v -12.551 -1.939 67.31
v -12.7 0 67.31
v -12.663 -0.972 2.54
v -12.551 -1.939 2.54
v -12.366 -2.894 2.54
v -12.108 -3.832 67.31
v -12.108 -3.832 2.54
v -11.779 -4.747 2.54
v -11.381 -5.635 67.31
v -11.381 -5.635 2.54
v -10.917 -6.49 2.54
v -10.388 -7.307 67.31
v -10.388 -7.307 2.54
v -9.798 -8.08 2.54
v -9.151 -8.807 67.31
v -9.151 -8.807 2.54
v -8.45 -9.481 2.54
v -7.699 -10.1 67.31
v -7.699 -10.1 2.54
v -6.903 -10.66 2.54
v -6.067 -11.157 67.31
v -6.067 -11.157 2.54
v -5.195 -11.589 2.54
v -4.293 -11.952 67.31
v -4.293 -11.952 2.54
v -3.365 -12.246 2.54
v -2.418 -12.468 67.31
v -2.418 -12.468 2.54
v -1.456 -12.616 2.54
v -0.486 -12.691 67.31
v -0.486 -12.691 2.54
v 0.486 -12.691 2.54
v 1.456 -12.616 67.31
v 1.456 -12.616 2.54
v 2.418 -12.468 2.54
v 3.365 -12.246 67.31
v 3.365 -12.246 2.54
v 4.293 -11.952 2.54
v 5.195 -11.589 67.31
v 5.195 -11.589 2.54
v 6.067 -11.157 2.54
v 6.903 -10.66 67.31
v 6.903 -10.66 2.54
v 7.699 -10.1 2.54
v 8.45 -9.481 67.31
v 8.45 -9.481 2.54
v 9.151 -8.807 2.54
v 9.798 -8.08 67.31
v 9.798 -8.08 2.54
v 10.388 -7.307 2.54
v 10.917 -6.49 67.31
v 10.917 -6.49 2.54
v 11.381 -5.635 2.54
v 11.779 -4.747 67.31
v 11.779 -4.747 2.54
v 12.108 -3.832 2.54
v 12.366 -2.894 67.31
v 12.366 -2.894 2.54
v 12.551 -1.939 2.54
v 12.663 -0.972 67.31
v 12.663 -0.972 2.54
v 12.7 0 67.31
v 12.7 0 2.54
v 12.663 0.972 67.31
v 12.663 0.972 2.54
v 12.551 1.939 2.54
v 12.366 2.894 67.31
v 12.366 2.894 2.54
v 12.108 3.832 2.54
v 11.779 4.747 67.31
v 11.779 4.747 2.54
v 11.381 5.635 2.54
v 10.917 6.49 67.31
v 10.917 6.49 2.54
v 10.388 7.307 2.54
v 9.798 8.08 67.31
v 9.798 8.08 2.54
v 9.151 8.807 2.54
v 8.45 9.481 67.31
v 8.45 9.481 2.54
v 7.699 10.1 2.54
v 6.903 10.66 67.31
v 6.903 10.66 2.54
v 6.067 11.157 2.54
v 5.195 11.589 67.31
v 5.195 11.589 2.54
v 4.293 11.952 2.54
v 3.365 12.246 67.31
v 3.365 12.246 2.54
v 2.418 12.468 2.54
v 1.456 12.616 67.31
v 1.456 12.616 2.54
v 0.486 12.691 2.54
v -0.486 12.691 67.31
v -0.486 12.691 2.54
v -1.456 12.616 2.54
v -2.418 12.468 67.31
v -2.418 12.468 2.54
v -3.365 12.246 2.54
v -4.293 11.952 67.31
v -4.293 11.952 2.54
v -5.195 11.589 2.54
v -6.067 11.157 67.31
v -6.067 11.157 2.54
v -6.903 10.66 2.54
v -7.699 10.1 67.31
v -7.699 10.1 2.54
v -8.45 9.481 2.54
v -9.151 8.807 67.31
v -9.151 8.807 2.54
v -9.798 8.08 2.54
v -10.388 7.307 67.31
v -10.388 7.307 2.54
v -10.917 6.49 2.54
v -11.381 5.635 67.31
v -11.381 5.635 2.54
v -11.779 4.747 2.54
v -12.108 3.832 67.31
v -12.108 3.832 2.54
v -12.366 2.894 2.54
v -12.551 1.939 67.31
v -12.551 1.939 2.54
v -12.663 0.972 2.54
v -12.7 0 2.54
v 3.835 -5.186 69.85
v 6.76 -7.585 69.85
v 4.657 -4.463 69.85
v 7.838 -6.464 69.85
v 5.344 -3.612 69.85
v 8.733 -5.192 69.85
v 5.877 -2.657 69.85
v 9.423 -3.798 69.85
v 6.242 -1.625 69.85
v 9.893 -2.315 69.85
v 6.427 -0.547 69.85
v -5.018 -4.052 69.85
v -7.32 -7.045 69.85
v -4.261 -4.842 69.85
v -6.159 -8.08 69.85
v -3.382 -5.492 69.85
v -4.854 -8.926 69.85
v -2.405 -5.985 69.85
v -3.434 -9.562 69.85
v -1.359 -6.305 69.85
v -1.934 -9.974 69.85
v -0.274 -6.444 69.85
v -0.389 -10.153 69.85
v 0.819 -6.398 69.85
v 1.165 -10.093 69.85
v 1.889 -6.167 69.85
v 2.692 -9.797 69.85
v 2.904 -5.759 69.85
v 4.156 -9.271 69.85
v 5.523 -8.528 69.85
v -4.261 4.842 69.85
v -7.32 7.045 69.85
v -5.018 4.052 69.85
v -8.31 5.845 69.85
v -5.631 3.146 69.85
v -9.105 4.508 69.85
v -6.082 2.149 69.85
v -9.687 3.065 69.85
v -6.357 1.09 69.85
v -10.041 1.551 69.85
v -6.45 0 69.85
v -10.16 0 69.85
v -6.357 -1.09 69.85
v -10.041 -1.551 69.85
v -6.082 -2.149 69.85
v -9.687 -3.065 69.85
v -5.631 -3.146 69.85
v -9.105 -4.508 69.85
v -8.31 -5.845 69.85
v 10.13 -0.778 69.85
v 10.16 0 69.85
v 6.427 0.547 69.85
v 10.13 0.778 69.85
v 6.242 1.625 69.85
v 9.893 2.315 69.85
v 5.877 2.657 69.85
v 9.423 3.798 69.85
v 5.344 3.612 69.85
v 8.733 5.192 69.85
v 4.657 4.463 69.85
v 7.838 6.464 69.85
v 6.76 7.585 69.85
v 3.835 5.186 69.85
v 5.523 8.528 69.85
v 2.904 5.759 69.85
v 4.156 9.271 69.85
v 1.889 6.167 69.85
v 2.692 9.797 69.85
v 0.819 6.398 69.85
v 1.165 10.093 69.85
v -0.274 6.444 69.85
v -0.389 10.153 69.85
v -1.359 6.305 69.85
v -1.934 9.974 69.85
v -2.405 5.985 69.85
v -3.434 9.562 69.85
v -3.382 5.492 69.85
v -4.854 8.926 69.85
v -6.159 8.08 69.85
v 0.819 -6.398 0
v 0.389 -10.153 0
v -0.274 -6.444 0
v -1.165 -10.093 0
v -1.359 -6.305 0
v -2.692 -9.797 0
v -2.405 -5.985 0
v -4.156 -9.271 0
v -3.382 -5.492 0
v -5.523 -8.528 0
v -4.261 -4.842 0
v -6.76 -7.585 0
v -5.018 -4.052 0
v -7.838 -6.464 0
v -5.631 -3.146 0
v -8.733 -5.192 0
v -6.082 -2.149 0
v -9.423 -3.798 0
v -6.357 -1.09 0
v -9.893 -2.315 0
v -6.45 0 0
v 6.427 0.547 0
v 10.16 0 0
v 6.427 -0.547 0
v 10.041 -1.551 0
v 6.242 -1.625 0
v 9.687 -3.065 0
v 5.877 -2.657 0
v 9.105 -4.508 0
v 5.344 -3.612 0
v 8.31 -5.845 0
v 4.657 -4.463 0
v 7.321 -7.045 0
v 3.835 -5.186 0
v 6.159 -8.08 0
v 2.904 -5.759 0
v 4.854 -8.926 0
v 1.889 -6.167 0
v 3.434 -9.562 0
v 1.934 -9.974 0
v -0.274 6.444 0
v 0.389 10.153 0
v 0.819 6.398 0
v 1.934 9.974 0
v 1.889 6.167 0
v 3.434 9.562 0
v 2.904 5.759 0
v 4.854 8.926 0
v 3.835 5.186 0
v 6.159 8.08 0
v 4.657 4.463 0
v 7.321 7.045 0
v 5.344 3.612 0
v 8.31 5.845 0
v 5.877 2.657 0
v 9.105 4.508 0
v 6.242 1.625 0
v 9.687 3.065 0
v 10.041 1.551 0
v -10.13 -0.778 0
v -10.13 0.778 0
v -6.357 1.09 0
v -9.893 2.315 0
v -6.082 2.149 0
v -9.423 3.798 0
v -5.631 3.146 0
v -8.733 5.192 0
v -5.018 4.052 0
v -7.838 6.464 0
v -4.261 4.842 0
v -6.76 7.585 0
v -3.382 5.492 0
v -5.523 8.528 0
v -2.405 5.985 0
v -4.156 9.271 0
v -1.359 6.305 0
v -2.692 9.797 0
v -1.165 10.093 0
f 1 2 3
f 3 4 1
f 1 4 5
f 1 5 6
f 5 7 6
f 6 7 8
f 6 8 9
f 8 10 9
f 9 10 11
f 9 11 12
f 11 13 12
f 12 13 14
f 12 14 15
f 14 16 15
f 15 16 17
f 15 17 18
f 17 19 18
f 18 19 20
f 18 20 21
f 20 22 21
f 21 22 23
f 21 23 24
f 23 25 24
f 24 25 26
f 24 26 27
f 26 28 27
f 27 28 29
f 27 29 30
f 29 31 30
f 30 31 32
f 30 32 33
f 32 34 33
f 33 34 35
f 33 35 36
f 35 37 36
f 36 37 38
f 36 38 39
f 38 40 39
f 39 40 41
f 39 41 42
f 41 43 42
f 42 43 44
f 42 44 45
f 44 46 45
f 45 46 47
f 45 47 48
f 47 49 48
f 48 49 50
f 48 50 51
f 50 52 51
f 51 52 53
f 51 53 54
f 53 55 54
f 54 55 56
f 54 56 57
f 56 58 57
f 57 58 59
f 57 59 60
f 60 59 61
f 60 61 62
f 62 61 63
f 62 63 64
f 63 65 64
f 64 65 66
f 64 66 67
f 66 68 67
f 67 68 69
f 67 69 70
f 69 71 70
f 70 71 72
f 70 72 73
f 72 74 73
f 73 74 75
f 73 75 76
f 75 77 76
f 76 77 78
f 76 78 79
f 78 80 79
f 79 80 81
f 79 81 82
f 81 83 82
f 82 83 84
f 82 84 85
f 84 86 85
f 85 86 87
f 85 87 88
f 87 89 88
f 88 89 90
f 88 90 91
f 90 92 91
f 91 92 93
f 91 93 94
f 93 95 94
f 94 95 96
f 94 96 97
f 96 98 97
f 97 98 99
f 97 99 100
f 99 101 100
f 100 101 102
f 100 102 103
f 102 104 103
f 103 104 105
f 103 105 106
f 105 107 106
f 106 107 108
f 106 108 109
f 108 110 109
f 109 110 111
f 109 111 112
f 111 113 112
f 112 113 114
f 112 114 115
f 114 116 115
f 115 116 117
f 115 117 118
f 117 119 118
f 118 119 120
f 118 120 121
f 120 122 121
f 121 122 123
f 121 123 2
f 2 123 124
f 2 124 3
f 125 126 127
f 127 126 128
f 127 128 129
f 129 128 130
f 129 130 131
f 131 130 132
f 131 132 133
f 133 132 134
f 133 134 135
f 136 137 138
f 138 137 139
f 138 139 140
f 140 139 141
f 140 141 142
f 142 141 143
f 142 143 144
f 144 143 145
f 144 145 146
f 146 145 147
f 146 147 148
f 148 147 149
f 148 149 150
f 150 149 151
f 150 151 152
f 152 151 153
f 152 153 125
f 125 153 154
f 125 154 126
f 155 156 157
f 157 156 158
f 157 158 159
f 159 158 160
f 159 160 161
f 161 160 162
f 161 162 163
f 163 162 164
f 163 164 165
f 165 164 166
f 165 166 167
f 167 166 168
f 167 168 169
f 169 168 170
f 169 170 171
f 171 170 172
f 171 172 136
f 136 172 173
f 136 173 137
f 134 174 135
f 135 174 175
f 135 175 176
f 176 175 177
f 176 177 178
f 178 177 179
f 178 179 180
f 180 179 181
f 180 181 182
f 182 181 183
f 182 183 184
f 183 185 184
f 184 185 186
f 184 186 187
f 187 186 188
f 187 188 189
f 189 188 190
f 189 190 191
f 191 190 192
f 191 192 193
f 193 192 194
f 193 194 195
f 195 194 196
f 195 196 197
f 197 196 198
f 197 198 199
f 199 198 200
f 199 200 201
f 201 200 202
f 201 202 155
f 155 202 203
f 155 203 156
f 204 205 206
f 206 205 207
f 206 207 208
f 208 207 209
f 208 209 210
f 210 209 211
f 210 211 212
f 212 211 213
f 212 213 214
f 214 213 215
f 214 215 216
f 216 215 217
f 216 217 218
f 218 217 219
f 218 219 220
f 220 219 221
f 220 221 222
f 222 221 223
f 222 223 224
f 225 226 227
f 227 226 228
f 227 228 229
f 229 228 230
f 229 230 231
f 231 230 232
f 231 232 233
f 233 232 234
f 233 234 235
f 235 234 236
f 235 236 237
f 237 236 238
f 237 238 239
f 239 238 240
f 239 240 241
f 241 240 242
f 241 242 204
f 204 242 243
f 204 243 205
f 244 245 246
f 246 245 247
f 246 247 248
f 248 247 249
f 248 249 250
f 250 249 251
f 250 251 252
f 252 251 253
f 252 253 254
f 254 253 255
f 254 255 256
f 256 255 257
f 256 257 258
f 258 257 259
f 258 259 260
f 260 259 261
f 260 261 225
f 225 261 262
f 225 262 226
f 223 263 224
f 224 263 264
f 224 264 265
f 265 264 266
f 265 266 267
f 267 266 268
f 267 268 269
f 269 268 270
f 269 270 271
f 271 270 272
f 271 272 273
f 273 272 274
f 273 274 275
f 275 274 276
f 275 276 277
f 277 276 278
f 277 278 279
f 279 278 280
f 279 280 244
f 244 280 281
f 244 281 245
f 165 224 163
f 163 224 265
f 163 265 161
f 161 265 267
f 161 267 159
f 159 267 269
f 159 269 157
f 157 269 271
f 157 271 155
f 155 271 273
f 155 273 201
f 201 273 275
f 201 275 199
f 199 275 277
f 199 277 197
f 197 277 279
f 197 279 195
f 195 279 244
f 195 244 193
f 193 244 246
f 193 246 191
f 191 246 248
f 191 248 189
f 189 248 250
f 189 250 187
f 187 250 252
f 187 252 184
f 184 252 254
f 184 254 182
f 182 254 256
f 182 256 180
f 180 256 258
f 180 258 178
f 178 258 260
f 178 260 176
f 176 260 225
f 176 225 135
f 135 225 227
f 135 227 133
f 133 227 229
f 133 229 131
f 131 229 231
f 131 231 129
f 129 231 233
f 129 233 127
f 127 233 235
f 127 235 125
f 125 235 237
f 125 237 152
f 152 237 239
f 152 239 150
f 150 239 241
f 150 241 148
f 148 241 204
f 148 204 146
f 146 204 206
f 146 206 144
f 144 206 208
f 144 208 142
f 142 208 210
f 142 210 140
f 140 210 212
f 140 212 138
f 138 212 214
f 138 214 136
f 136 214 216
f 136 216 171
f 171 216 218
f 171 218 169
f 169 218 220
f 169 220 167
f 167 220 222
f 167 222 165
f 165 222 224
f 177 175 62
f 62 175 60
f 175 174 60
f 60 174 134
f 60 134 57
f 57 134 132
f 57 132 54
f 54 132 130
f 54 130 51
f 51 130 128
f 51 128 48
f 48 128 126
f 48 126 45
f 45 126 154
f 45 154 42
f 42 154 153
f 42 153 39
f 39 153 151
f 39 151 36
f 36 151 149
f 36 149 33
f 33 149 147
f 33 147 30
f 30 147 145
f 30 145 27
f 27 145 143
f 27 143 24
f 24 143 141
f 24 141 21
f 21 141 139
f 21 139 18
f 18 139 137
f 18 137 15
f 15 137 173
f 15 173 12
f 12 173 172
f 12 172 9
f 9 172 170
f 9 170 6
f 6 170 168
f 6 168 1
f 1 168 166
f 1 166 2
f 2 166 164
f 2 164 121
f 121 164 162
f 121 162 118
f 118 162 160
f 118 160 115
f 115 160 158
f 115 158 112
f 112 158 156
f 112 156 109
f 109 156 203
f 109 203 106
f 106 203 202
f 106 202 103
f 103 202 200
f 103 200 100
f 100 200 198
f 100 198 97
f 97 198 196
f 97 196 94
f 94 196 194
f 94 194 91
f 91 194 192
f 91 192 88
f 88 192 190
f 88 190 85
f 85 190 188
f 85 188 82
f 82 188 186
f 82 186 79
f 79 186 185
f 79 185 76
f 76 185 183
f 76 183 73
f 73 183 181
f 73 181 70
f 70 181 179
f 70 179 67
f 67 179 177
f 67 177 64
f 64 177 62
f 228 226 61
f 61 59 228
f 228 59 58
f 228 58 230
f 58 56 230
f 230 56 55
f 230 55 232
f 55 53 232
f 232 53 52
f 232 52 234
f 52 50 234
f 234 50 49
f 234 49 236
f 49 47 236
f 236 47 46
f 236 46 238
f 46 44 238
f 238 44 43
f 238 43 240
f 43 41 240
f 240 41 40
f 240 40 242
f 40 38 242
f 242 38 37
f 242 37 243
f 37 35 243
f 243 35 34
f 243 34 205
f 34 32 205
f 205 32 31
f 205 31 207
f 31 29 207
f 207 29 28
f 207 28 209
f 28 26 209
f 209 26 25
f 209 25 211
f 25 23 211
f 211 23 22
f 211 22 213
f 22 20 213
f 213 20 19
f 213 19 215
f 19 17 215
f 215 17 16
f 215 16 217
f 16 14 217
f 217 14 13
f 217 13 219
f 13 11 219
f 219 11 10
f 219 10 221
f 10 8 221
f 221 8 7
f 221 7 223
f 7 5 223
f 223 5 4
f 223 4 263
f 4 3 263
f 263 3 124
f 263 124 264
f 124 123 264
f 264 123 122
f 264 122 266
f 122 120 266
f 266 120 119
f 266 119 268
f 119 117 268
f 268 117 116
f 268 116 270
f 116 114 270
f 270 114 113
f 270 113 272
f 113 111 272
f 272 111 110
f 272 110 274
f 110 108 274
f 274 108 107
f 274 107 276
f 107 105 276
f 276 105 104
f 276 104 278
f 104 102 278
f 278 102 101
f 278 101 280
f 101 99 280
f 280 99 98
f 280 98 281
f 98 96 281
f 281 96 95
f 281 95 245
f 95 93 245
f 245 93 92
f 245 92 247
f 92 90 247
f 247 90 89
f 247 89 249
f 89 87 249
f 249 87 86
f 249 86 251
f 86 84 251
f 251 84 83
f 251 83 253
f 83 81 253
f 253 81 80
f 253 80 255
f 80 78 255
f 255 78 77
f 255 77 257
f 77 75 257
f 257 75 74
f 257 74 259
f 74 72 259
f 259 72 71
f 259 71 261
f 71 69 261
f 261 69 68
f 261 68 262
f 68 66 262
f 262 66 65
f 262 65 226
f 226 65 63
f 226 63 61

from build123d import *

# Parameters (mm, degrees)
SKETCH1_R           = 12.7
BOSS_EXTRUDE1_DEPTH = 69.85
SKETCH2_R           = 6.45
CUT_EXTRUDE1_DEPTH  = 73.122135992
CHAMFER1_SIZE       = 2.54


with BuildPart() as part:
    # Sketch1 → Boss-Extrude1 (new body)
    with BuildSketch(Plane.XY):
        Circle(SKETCH1_R)
    extrude(amount=BOSS_EXTRUDE1_DEPTH)

    # Sketch2 → Cut-Extrude1 (cut, through all)
    with BuildSketch(Plane(origin=(0, 0, 0), x_dir=(-1, 0, 0), z_dir=(0, 0, -1))):
        Circle(SKETCH2_R)
    extrude(amount=-CUT_EXTRUDE1_DEPTH, mode=Mode.SUBTRACT)

    # Chamfer1
    chamfer1_edges = [part.edges().sort_by_distance(p)[0] for p in [
        (-12.7, 0, 0),
        (-12.7, 0, 69.85),
    ]]
    chamfer(chamfer1_edges, length=CHAMFER1_SIZE)


solid = part.part
